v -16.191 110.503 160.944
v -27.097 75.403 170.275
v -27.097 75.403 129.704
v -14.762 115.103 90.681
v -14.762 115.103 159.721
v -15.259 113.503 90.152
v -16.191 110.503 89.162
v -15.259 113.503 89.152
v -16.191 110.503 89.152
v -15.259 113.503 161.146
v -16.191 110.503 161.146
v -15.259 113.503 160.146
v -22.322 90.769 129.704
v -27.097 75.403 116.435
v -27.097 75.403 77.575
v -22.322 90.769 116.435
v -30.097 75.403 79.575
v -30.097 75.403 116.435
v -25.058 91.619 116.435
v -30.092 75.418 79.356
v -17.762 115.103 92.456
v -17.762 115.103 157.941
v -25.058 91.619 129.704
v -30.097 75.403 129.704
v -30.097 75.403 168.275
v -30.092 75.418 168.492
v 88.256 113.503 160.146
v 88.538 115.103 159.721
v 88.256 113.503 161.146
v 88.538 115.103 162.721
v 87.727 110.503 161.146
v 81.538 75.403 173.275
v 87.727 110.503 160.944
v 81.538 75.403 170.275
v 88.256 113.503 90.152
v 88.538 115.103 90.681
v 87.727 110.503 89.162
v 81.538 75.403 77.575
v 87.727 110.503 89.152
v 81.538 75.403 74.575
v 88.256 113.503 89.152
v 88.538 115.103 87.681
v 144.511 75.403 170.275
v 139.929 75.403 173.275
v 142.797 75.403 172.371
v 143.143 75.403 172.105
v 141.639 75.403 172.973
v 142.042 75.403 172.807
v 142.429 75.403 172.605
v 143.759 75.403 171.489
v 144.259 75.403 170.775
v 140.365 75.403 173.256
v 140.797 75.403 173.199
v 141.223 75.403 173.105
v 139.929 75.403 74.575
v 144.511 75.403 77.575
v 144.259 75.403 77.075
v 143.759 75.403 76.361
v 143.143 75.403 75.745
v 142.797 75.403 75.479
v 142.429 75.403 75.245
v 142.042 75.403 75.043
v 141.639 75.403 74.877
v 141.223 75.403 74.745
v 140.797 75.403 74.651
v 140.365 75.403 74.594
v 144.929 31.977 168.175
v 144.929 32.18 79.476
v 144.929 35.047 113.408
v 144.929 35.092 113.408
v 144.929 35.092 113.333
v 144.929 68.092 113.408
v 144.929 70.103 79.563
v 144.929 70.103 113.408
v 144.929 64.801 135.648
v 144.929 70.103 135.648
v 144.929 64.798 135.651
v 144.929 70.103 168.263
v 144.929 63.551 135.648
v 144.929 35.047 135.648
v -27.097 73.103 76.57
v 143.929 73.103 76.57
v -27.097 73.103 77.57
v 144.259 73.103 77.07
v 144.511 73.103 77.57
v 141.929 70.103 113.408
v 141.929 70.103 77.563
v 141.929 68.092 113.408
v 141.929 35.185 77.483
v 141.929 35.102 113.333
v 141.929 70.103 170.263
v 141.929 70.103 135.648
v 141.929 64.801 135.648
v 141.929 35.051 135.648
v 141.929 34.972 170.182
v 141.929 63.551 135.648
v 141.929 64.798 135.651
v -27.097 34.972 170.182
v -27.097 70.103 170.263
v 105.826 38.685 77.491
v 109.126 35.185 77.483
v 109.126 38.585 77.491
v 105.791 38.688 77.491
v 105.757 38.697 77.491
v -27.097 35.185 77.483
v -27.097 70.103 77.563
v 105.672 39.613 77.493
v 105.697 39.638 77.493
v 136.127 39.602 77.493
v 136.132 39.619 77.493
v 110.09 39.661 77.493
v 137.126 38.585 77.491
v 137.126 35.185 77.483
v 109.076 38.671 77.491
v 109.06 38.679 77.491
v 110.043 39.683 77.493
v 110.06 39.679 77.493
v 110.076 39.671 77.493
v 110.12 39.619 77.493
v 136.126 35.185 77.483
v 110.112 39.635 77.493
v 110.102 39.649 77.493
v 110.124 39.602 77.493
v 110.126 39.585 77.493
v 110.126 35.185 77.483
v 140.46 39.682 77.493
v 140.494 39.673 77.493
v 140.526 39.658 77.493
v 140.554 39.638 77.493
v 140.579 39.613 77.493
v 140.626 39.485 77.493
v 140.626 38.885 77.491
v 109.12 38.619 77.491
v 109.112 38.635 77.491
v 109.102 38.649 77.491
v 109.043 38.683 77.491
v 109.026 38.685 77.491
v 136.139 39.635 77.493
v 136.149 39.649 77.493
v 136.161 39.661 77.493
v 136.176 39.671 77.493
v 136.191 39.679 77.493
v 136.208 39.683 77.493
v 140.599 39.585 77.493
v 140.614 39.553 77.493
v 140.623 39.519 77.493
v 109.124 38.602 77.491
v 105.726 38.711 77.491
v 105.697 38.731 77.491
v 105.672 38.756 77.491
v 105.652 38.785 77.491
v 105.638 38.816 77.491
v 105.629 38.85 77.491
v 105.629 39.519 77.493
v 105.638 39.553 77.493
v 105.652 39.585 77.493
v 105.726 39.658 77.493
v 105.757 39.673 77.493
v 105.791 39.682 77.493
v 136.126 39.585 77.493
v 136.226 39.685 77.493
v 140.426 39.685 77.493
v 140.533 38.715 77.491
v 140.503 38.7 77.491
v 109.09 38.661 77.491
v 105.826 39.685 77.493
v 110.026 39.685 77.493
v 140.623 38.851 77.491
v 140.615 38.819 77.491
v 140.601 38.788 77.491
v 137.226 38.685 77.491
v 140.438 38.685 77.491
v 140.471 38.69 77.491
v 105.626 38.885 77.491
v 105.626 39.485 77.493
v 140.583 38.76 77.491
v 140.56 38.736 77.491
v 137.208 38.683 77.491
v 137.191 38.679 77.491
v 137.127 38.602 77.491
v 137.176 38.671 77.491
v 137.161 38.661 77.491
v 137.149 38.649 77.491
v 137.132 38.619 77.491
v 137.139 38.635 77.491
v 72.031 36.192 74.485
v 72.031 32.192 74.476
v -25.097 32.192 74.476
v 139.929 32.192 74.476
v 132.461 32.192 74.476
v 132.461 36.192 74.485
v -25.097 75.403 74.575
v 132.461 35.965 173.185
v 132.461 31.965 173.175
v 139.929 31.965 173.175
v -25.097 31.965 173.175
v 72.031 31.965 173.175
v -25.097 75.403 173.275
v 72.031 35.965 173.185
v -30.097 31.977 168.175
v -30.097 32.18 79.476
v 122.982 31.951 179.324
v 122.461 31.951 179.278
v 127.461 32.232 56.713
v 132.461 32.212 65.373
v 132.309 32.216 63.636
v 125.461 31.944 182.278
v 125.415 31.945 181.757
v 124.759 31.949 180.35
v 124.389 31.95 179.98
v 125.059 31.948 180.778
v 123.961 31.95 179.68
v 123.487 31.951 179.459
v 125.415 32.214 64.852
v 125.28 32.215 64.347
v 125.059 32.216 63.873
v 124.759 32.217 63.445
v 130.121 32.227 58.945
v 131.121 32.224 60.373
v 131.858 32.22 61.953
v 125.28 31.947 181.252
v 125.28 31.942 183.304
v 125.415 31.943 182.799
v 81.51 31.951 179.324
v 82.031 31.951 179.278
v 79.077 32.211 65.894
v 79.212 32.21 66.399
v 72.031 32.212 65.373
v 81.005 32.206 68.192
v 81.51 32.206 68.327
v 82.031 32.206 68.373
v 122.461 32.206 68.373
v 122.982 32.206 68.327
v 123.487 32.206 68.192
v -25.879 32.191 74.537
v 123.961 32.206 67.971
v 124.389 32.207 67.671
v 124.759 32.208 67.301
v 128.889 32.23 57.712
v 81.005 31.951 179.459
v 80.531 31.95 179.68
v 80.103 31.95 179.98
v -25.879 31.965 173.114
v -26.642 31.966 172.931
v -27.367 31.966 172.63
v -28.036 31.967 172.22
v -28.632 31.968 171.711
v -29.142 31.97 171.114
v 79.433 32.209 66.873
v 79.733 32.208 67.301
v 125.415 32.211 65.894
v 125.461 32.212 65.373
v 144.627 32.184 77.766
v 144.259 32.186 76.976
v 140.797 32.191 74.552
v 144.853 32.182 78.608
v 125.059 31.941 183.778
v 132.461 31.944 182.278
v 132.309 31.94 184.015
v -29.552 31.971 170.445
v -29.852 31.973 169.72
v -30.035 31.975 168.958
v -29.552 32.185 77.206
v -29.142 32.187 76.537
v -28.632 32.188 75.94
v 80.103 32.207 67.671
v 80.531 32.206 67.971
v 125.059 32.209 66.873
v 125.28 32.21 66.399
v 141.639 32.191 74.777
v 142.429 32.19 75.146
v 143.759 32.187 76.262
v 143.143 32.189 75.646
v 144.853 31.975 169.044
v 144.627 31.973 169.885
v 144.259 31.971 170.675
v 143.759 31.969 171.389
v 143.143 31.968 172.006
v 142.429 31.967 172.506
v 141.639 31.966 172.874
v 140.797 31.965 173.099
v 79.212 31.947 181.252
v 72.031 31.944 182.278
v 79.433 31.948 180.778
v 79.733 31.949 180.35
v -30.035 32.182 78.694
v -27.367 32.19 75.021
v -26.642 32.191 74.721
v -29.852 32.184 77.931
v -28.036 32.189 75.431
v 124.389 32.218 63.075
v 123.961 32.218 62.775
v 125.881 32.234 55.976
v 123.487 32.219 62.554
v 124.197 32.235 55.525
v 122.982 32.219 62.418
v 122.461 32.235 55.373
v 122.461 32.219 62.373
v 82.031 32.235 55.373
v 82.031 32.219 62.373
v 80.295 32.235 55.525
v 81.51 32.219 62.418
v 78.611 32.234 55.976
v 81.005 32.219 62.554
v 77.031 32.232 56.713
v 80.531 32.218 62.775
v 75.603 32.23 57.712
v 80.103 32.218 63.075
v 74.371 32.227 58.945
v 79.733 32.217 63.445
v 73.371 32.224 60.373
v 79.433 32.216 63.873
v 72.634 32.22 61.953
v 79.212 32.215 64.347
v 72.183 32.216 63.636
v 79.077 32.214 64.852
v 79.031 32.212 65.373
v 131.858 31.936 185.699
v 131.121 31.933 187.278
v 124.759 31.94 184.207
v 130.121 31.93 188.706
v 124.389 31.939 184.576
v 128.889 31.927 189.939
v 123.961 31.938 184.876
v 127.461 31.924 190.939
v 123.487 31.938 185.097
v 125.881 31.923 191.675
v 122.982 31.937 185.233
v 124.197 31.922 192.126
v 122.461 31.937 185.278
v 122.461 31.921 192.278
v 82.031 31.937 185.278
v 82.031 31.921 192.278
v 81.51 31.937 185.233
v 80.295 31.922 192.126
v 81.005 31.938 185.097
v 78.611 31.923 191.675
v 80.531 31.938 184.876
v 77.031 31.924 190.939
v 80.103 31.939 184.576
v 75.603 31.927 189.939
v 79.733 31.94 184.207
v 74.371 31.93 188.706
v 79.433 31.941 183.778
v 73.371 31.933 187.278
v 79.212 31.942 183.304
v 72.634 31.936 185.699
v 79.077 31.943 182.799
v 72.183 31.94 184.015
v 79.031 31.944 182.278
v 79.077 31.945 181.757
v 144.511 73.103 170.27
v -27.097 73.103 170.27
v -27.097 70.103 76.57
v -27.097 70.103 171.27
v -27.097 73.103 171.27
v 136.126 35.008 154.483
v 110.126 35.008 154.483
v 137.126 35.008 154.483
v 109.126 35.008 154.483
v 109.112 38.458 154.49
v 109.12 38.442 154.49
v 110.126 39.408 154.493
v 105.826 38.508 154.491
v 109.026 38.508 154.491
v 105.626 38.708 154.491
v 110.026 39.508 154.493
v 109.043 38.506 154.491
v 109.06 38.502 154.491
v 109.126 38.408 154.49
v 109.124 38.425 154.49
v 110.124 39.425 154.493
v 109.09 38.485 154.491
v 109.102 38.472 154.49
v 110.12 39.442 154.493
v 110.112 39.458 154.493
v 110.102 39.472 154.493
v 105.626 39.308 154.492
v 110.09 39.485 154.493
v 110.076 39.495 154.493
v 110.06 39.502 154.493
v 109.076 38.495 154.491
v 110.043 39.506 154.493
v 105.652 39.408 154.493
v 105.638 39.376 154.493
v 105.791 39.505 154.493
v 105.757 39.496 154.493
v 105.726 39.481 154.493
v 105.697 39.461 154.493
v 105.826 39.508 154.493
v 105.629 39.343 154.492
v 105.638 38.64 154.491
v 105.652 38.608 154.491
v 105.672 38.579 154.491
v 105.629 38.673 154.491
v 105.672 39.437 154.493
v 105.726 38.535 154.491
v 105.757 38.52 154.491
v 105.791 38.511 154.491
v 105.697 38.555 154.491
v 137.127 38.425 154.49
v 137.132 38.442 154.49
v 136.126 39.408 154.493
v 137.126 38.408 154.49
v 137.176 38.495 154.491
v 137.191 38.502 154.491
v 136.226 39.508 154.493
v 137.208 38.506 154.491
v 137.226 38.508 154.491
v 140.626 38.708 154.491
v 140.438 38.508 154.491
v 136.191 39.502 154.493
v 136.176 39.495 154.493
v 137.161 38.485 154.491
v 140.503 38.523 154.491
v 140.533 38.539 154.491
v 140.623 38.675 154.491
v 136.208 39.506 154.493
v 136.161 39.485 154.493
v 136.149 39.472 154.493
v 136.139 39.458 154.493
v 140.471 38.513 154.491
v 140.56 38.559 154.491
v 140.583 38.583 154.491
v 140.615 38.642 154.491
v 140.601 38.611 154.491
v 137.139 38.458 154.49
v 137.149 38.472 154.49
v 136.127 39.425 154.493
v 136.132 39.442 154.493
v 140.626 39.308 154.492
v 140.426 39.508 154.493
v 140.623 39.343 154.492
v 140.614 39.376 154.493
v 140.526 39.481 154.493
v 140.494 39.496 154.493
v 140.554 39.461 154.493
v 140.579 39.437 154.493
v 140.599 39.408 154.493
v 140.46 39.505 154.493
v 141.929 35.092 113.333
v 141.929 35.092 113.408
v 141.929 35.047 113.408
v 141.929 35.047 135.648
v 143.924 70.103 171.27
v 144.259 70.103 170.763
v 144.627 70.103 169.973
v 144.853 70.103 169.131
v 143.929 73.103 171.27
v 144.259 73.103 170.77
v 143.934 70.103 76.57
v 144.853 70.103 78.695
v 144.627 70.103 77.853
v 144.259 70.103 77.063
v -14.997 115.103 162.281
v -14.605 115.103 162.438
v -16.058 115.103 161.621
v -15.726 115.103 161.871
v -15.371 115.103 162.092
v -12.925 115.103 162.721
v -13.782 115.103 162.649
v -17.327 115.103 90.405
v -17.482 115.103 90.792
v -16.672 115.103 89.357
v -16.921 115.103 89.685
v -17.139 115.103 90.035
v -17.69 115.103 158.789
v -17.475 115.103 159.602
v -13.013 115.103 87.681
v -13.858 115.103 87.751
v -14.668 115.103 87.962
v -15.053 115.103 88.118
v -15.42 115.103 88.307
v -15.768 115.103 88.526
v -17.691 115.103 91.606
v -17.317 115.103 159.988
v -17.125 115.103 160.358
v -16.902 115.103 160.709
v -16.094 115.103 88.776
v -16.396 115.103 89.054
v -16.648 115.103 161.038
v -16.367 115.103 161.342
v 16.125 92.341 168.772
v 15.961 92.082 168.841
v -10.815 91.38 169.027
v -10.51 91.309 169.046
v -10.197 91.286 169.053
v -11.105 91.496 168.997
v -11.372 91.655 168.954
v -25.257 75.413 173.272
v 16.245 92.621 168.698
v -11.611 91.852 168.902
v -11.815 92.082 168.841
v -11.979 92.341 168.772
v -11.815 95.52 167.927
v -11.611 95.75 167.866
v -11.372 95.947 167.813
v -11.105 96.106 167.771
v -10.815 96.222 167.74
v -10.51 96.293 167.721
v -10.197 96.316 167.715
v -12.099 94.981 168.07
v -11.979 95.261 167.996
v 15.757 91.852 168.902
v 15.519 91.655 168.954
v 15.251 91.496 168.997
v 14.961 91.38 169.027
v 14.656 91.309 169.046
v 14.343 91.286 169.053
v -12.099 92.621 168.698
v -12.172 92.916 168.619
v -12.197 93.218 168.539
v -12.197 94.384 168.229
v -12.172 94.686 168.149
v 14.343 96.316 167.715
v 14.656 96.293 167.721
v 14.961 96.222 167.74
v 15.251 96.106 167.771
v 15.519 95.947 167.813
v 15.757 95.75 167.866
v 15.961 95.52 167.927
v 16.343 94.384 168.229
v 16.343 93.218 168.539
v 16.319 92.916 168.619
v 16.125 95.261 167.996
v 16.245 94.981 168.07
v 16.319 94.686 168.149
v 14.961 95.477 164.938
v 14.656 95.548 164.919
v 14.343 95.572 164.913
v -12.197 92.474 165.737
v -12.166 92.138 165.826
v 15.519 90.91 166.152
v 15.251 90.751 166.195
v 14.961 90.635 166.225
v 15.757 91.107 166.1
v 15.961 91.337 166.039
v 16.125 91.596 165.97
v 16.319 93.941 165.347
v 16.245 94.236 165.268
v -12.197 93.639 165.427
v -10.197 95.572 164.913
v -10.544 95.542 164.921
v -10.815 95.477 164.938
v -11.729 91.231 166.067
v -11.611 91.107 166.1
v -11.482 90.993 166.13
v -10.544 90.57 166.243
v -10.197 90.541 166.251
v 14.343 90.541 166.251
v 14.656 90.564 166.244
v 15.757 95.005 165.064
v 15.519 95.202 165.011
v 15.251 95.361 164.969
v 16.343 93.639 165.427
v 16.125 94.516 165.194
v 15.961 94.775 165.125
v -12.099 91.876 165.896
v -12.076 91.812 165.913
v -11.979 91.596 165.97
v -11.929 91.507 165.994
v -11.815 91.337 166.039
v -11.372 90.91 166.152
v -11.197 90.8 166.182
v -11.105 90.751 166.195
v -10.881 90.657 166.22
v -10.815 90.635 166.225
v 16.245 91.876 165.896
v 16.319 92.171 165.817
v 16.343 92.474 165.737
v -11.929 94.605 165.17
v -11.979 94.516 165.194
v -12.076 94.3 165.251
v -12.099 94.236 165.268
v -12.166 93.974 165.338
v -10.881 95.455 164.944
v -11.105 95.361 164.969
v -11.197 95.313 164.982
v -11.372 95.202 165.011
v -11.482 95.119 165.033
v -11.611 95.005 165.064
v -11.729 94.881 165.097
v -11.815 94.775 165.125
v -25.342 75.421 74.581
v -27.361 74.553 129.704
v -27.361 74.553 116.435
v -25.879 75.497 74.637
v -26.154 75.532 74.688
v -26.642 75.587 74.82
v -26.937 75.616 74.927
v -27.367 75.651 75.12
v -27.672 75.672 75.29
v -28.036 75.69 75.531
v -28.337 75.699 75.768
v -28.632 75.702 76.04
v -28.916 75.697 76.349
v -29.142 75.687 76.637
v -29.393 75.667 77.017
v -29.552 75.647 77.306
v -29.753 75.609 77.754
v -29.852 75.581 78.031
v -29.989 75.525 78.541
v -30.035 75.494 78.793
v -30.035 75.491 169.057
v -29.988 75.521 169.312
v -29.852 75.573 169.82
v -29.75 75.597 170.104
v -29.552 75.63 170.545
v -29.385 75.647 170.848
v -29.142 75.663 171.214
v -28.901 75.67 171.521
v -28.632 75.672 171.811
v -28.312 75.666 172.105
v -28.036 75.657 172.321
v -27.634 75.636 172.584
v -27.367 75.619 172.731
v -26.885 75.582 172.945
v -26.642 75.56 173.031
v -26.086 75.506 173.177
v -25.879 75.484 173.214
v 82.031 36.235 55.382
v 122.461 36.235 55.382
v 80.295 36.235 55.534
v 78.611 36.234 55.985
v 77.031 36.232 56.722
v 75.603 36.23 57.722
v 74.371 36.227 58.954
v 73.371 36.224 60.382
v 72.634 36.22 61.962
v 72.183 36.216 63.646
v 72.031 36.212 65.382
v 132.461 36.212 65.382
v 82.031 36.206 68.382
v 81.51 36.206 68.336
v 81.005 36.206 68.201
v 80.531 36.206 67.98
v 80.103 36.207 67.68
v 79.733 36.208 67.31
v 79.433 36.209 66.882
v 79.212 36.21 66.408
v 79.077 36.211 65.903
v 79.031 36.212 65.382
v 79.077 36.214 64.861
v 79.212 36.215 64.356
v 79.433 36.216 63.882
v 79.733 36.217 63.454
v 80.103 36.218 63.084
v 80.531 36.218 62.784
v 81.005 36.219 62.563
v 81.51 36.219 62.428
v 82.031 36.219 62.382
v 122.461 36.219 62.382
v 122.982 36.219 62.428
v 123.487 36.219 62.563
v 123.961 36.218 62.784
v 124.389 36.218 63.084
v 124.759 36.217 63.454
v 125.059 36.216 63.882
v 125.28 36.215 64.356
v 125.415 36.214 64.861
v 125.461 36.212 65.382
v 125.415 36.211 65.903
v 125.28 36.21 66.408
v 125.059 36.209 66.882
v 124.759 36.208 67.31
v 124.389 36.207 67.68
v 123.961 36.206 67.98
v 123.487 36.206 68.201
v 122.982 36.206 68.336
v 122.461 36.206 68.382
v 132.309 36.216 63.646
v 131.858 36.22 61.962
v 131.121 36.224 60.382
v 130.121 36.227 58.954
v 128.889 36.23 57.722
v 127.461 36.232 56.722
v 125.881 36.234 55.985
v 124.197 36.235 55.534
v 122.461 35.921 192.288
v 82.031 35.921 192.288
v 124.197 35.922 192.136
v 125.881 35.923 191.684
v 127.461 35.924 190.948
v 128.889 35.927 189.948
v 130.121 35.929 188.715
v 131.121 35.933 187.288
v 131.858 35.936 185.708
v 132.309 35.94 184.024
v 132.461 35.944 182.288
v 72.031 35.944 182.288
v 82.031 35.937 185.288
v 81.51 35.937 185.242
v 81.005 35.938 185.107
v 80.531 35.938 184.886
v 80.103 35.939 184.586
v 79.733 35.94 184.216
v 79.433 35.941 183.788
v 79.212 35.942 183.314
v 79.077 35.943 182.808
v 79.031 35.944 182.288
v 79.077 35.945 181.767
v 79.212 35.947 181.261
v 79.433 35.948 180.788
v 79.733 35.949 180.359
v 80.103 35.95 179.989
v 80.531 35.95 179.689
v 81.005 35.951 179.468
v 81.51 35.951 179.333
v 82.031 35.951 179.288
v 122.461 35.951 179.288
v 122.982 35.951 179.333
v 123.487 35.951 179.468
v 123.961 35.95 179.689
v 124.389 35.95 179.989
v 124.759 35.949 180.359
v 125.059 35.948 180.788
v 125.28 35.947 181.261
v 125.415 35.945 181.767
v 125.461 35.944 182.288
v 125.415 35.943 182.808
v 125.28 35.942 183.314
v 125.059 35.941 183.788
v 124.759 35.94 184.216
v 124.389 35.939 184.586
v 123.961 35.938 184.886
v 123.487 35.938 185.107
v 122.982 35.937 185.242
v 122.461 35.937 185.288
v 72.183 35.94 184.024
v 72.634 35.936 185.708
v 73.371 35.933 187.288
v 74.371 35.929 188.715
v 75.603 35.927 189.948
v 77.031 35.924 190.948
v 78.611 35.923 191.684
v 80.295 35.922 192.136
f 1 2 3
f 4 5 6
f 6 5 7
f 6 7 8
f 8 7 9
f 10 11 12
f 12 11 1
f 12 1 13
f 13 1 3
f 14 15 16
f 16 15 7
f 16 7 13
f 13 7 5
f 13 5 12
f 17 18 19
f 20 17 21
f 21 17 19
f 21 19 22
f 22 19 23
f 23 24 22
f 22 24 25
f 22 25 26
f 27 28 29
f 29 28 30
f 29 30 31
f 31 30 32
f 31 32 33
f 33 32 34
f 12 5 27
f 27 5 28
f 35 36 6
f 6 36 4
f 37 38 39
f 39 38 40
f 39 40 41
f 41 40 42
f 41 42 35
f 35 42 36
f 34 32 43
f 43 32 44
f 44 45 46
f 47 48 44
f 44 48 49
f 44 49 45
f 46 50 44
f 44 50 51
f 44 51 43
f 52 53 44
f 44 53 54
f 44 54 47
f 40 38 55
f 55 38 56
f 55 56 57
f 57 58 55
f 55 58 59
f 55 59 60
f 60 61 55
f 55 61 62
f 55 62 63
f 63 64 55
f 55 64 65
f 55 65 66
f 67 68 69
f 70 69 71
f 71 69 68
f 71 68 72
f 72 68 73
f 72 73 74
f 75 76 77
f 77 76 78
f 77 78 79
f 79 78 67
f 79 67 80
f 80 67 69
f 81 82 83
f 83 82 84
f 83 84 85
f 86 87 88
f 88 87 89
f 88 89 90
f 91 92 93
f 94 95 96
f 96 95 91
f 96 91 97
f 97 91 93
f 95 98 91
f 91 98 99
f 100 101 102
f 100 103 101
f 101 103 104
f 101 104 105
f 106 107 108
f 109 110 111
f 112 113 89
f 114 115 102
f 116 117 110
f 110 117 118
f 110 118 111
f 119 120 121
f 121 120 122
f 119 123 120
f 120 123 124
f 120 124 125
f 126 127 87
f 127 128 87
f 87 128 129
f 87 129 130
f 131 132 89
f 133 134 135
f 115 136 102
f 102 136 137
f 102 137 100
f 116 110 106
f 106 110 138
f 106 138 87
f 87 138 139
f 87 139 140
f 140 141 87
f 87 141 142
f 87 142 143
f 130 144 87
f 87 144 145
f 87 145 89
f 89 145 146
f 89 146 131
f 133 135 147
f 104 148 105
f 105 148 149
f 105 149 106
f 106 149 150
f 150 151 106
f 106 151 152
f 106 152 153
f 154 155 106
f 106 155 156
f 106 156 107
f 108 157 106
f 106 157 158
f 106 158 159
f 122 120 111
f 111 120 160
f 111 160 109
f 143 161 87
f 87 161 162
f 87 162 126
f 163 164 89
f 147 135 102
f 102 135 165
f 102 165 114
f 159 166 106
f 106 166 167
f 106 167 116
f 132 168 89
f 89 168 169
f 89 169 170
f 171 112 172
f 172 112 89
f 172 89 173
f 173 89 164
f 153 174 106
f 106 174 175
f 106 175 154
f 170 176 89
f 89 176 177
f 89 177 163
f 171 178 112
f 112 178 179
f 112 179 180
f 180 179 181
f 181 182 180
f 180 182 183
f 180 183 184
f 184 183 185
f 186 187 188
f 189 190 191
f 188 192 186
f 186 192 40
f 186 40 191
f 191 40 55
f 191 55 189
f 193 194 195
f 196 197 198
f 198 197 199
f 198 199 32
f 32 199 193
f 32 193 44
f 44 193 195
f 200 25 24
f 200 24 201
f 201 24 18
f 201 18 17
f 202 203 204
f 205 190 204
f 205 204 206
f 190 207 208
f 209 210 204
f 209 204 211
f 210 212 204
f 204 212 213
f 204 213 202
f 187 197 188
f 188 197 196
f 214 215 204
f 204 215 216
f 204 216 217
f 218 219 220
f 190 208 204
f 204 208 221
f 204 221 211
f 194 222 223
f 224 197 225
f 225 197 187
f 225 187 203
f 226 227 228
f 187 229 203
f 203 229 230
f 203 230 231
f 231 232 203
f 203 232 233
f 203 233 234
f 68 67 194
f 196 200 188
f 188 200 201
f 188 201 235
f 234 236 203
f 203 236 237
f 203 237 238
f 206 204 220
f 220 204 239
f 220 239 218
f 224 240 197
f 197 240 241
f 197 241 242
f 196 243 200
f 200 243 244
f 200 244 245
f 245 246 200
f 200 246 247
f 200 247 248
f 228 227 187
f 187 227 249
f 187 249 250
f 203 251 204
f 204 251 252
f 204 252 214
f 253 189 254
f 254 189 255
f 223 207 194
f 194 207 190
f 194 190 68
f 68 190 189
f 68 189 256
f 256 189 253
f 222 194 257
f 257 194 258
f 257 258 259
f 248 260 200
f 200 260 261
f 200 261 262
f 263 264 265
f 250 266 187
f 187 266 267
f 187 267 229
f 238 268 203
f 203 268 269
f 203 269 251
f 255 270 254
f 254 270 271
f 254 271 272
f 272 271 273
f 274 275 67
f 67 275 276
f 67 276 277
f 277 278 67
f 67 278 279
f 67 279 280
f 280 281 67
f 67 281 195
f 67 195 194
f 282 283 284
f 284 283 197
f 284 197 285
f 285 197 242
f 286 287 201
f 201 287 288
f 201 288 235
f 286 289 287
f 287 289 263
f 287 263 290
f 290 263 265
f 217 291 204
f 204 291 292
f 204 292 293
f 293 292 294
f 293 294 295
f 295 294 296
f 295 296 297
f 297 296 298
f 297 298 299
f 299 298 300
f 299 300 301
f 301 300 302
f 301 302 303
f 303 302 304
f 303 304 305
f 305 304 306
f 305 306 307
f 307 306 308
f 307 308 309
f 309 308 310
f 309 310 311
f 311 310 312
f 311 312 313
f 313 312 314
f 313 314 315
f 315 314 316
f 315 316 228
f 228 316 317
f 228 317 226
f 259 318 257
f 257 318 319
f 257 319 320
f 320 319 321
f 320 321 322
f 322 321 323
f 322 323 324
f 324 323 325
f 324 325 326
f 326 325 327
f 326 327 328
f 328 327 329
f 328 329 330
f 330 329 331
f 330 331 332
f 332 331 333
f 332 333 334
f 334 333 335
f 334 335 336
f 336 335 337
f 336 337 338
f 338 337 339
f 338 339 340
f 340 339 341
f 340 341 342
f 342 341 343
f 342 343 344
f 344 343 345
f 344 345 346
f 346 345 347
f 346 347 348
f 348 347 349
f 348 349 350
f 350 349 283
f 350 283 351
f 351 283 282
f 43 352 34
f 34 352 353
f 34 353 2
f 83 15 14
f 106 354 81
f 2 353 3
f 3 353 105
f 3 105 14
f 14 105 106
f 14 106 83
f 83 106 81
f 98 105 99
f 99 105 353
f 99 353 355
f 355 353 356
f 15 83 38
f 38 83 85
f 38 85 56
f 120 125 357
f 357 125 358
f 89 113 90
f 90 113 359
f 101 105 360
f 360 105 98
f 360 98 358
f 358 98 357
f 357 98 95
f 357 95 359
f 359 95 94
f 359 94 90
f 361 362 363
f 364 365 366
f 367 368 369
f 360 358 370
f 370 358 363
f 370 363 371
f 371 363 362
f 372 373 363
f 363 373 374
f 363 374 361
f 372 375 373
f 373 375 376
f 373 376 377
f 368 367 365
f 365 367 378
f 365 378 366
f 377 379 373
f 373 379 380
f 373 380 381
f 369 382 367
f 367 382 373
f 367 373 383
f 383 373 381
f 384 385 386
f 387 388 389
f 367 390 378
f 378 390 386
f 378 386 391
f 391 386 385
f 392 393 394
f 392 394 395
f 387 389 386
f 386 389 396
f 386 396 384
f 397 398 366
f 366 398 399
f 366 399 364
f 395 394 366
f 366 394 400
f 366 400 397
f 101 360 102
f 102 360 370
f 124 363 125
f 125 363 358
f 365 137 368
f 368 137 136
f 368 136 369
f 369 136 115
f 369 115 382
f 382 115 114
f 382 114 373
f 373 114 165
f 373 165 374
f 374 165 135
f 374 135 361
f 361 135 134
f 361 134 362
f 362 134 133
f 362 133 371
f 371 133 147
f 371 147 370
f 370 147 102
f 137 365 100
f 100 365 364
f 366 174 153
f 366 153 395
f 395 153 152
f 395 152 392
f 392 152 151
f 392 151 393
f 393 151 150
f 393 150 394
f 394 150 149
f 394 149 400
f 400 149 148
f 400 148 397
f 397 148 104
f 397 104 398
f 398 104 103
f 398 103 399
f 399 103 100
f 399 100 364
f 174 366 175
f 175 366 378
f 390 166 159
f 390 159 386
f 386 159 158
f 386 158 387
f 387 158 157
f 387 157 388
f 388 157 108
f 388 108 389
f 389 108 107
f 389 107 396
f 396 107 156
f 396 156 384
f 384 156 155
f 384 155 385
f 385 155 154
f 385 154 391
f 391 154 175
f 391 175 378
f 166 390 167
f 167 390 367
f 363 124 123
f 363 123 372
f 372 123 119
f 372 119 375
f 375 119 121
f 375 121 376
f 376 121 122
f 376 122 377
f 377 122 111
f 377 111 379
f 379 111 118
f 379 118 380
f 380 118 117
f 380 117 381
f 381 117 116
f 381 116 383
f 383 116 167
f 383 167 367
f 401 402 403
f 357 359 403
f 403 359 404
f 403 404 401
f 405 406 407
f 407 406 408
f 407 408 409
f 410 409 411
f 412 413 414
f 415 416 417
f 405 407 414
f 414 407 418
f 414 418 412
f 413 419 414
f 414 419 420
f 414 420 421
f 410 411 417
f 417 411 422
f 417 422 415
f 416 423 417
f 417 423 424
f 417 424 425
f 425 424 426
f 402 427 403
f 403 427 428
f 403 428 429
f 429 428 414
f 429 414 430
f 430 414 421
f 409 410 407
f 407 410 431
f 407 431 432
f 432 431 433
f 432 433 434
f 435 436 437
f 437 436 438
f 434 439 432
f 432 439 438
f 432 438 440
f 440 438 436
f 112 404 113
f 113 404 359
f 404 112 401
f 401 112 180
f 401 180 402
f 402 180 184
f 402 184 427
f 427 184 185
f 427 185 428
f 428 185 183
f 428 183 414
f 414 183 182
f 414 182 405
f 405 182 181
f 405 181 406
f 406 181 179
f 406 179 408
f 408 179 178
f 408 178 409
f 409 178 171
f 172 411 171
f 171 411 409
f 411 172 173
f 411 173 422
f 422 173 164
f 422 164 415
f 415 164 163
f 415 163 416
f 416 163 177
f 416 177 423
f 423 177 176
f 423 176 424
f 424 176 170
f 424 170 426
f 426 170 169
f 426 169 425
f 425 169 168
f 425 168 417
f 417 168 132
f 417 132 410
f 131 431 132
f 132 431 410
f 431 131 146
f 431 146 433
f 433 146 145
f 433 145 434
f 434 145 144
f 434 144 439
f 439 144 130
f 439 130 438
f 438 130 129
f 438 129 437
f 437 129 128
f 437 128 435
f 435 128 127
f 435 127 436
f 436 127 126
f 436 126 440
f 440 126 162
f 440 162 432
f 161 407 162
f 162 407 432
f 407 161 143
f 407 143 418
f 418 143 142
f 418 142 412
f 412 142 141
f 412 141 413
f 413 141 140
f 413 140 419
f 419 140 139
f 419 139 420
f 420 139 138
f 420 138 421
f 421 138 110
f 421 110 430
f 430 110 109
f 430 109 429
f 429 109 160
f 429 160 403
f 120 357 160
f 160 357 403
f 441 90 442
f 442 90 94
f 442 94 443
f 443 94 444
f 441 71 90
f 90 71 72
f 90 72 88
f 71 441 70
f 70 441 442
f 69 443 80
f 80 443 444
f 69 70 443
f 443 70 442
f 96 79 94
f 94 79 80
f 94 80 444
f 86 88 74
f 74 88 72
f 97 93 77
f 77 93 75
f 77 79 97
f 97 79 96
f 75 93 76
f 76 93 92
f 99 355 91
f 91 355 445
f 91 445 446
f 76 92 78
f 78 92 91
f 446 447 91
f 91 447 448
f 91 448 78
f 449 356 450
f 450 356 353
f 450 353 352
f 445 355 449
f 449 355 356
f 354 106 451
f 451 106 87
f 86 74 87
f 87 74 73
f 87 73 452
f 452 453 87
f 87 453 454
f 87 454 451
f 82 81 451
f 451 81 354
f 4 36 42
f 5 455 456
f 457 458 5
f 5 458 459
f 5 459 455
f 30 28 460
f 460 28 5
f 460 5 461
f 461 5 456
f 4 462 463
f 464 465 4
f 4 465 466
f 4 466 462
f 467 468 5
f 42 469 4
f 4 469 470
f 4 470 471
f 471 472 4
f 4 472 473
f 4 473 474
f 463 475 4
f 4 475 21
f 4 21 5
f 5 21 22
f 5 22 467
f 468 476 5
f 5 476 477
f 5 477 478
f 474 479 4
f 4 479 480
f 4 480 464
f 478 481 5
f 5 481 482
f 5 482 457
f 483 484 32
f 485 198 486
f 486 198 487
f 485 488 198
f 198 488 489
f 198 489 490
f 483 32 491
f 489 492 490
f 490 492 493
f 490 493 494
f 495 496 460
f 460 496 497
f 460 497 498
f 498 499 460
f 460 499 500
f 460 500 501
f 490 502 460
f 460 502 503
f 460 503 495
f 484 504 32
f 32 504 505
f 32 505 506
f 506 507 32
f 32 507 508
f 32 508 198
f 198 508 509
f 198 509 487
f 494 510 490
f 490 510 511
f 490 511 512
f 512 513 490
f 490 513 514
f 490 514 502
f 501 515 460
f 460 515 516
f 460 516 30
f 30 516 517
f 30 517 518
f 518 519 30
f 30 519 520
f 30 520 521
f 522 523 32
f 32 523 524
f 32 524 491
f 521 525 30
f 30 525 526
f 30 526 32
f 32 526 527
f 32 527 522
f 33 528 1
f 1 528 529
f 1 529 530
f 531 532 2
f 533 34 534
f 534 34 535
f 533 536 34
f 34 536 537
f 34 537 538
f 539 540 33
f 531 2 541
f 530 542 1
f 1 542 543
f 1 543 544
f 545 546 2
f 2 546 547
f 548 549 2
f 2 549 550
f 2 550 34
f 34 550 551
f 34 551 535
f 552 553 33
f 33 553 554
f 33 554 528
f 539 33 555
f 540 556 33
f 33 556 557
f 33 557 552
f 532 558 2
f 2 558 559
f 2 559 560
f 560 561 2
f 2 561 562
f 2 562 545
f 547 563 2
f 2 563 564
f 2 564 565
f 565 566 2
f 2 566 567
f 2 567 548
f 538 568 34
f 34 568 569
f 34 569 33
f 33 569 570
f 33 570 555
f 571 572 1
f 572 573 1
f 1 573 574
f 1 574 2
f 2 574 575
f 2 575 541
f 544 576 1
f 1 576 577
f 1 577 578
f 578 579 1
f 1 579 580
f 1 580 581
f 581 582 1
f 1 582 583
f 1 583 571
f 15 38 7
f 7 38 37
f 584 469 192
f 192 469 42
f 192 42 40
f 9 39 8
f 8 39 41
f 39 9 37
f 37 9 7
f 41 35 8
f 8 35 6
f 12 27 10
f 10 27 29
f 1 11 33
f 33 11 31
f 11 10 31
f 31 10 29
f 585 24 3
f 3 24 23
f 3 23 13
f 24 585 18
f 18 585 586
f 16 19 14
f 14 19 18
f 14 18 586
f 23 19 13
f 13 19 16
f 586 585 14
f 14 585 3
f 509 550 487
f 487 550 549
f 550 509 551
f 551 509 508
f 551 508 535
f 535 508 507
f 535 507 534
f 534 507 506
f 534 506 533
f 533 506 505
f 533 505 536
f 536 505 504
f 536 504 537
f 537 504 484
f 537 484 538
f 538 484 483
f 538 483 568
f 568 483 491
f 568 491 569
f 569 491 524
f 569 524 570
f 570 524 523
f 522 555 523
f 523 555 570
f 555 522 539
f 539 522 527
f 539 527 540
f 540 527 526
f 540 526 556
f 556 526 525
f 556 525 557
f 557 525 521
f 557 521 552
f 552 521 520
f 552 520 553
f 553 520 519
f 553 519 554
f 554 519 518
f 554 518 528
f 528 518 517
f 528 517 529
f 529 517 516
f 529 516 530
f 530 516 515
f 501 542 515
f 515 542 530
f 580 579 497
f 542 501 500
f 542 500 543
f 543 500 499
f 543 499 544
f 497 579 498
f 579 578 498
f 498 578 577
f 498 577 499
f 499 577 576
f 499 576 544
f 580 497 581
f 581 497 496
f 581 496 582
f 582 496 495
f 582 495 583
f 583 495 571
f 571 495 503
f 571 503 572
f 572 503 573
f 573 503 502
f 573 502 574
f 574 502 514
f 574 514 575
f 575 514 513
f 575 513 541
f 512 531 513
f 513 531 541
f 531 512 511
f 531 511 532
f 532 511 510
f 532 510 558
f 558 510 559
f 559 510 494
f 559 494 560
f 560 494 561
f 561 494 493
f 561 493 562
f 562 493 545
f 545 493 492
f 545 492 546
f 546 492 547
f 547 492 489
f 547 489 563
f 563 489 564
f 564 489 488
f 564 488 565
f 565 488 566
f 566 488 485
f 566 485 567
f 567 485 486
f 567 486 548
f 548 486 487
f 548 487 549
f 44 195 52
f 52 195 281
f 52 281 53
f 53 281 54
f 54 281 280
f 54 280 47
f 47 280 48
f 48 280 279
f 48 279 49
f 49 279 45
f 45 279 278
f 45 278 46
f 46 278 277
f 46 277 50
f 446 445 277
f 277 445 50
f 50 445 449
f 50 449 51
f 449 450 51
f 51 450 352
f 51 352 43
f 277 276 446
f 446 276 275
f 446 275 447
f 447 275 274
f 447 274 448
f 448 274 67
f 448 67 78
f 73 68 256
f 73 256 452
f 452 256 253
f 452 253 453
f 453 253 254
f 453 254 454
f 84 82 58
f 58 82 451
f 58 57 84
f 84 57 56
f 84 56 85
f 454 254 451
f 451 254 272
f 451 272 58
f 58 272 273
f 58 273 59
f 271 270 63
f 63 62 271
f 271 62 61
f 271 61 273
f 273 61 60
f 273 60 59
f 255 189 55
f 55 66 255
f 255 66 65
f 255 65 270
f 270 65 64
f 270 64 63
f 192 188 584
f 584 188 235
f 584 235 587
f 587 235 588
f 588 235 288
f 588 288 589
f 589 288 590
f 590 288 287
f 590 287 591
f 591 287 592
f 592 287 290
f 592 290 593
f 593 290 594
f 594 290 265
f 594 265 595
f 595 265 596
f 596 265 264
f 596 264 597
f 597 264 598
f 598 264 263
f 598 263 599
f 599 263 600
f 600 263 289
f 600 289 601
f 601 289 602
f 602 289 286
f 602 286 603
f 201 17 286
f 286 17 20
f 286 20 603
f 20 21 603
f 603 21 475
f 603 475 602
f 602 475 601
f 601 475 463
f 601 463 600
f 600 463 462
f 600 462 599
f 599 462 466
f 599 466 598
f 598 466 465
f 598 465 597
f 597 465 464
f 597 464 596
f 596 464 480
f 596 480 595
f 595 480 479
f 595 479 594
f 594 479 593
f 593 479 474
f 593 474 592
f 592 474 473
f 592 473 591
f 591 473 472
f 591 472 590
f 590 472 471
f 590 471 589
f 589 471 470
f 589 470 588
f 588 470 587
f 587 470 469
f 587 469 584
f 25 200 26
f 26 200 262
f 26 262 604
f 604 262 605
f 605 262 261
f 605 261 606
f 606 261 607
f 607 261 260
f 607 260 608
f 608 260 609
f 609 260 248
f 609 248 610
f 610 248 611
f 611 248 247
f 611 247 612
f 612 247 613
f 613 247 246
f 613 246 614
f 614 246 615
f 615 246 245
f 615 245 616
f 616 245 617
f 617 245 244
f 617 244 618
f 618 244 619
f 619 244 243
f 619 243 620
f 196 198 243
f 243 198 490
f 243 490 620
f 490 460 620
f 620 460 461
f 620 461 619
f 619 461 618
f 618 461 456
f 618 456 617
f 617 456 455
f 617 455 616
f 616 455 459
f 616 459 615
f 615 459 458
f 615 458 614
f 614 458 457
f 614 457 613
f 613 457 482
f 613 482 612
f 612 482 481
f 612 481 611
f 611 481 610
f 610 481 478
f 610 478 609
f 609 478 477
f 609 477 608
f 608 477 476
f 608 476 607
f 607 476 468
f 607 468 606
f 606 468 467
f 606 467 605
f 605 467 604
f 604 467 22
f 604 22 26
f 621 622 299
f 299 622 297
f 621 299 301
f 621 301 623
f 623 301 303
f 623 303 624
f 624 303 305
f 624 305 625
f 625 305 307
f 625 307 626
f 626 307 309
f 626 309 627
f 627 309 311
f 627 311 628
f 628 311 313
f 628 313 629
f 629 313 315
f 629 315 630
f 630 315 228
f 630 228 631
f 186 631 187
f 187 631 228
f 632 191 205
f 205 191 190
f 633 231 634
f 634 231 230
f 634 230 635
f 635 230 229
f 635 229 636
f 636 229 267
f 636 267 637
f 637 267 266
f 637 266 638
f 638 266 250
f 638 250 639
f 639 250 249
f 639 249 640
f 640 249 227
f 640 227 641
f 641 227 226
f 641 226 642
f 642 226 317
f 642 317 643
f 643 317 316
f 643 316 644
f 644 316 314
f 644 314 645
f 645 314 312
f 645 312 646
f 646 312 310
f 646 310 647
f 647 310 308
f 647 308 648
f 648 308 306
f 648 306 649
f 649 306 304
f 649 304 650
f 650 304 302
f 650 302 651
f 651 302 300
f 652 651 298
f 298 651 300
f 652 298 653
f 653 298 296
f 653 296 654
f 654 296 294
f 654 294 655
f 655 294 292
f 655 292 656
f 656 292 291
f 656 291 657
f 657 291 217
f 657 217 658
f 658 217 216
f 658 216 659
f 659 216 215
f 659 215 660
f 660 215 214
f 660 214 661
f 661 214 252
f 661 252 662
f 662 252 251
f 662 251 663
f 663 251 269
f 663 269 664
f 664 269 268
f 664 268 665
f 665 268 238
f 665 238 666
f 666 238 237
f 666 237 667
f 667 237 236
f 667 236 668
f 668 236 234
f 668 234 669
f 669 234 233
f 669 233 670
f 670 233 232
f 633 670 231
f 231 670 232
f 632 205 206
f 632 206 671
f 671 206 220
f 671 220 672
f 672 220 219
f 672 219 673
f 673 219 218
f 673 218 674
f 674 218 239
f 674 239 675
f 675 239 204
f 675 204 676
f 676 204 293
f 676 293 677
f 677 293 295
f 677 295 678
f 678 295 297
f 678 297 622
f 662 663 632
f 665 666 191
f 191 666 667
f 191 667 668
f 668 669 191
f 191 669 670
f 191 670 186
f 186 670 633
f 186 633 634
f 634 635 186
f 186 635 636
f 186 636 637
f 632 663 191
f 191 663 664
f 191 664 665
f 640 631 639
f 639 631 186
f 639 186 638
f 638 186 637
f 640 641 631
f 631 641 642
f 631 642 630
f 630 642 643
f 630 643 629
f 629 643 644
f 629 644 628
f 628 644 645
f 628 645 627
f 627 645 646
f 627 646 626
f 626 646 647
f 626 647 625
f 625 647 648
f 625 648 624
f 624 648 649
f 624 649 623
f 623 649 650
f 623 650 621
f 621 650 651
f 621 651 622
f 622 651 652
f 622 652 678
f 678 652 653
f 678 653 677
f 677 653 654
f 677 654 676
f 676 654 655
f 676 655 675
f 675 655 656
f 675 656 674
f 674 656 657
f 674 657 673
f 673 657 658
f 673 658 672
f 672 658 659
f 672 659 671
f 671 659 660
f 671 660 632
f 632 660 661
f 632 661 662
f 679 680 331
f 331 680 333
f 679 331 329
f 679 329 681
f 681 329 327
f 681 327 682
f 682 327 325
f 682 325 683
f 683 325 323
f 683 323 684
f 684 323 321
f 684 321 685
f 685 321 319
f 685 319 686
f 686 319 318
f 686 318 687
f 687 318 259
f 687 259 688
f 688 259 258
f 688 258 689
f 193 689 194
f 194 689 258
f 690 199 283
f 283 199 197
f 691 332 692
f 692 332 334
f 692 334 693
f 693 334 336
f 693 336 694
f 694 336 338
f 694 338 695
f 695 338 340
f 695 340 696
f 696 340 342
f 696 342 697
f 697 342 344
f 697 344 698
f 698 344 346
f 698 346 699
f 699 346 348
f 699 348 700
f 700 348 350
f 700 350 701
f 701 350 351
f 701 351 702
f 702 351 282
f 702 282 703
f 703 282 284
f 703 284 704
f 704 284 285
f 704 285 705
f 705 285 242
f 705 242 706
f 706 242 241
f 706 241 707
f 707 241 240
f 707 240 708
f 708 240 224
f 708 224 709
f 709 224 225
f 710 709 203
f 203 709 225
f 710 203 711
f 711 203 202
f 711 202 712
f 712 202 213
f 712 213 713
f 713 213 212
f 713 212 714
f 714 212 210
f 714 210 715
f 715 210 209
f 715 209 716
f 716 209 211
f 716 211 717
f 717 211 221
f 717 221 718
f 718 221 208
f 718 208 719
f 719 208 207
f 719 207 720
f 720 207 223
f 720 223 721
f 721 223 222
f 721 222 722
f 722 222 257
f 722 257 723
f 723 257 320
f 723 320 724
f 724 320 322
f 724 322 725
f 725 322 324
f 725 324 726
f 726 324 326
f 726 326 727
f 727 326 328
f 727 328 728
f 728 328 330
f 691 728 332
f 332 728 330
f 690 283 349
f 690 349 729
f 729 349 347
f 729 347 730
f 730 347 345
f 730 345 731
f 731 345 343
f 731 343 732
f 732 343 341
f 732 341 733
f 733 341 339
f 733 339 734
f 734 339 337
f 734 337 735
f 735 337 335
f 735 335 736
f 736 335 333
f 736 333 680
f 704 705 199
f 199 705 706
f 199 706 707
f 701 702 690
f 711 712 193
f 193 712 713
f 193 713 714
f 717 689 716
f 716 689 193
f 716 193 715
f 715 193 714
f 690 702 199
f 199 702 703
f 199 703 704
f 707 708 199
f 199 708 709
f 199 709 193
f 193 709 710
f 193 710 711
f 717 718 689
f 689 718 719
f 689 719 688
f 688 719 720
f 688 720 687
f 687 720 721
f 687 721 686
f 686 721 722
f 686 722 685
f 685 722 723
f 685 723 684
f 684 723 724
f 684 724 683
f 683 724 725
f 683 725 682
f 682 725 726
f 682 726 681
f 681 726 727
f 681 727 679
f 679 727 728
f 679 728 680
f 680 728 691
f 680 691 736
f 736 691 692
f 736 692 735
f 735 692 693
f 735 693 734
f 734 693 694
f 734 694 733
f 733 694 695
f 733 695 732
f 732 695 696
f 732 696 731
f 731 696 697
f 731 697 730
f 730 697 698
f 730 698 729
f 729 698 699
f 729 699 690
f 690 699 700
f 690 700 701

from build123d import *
from OCP.BRepAlgoAPI import BRepAlgoAPI_Cut
from OCP.TopTools import TopTools_ListOfShape

# Parameters (mm, degrees)
SKETCH1_W            = 175.025590169
SKETCH1_H            = 98.699761336
BOSS_EXTRUDE1_DEPTH  = 3
SKETCH2_W            = 175.025590169
SKETCH2_H            = 98.699761336
SKETCH2_W_2          = 169.025590169
SKETCH2_H_2          = 92.699761336
BOSS_EXTRUDE2_DEPTH  = 35.5
BOSS_EXTRUDE3_DEPTH  = 80
CUT_EXTRUDE1_DEPTH   = 3
BOSS_EXTRUDE18_REACH = 231.088
CUT_EXTRUDE2_DEPTH   = 172.025590169
CUT_EXTRUDE6_DEPTH   = 10
CUT_EXTRUDE9_REACH   = 273.858
SKETCH20_W           = 55.04
SKETCH20_H           = 1.6
SKETCH20_W_2         = 71.993551849
SKETCH20_H_2         = 3
SKETCH21_W           = 13.268982054
SKETCH21_H           = 16.981220693
CUT_EXTRUDE10_DEPTH  = 2.864894477
CUT_EXTRUDE11_DEPTH  = 2.899295446
FILLET1_R            = 5
BOSS_EXTRUDE21_DEPTH = 4


with BuildPart() as part:
    # Sketch1 → Boss-Extrude1 (new body)
    with BuildSketch(Plane(origin=(0, 35.362227101, 0.081123263), x_dir=(1, 0, 0), z_dir=(6.9833353168161736e-15, -0.9999973686422646, -0.002294059403524814))):
        with Locations((57.415956998, 123.751717011)):
            Rectangle(SKETCH1_W, SKETCH1_H)
    extrude(amount=BOSS_EXTRUDE1_DEPTH)

    # Sketch2 → Boss-Extrude2 (add)
    with BuildSketch(Plane(origin=(0, 35.362227101, 0.081123263), x_dir=(1, 0, 0), z_dir=(-6.991181572878775e-15, 0.9999973686422646, 0.0022940594035248327))):
        with Locations((57.415956998, -123.751717011)):
            Rectangle(SKETCH2_W, SKETCH2_H)
        with Locations((57.415956998, -123.751717011)):
            Rectangle(SKETCH2_W_2, SKETCH2_H_2, mode=Mode.SUBTRACT)
    extrude(amount=BOSS_EXTRUDE2_DEPTH)

    # Sketch4 → Boss-Extrude3 (add)
    with BuildSketch(Plane(origin=(0, -0.170682232, 74.401640566), x_dir=(-1, 0, 0), z_dir=(0, 0.0022940594035248145, -0.9999973686422646))):
        with BuildLine():
            Line((-137.125595462, 33.362320152), (-137.125595462, 38.762320152))
            ThreePointArc((-137.125595462, 38.762320152), (-137.154884784, 38.83303083), (-137.225595462, 38.862320152))
            Line((-137.225595462, 38.862320152), (-140.437886876, 38.862320152))
            ThreePointArc((-140.437886876, 38.862320152), (-140.571564636, 38.925046414), (-140.625972803, 39.062320152))
            Line((-140.625972803, 39.062320152), (-140.625595462, 39.662320152))
            ThreePointArc((-140.625595462, 39.662320152), (-140.567016818, 39.803741508), (-140.425595462, 39.862320152))
            Line((-140.425595462, 39.862320152), (-136.225595462, 39.862320152))
            ThreePointArc((-136.225595462, 39.862320152), (-136.154884784, 39.83303083), (-136.125595462, 39.762320152))
            Line((-136.125595462, 39.762320152), (-136.125595462, 33.962320152))
            ThreePointArc((-136.125595462, 33.962320152), (-136.09630614, 33.891609474), (-136.025595462, 33.862320152))
            Line((-136.025595462, 33.862320152), (-110.225595462, 33.862320152))
            ThreePointArc((-110.225595462, 33.862320152), (-110.154884784, 33.891609474), (-110.125595462, 33.962320152))
            Line((-110.125595462, 33.962320152), (-110.125595462, 39.762320152))
            ThreePointArc((-110.125595462, 39.762320152), (-110.09630614, 39.83303083), (-110.025595462, 39.862320152))
            Line((-110.025595462, 39.862320152), (-105.825595462, 39.862320152))
            ThreePointArc((-105.825595462, 39.862320152), (-105.684174106, 39.803741508), (-105.625595462, 39.662320152))
            Line((-105.625595462, 39.662320152), (-105.625595462, 39.062320152))
            ThreePointArc((-105.625595462, 39.062320152), (-105.684174106, 38.920898796), (-105.825595462, 38.862320152))
            Line((-105.825595462, 38.862320152), (-109.025595462, 38.862320152))
            ThreePointArc((-109.025595462, 38.862320152), (-109.09630614, 38.83303083), (-109.125595462, 38.762320152))
            Line((-109.125595462, 38.762320152), (-109.125595462, 33.362320152))
            Line((-109.125595462, 33.362320152), (-109.125595462, 32.362320152))
            Line((-109.125595462, 32.362320152), (-137.125595462, 32.362320152))
            Line((-137.125595462, 32.362320152), (-137.125595462, 33.362320152))
        make_face()
    extrude(amount=-BOSS_EXTRUDE3_DEPTH)

    # Sketch5 → Cut-Extrude1 (cut)
    with BuildSketch(Plane(origin=(144.928752082, 0, 0), x_dir=(0, 0, -1), z_dir=(1, 0, 0))):
        Polygon((-135.647864414, 70.612709498), (-135.647864414, 64.800669259), (-135.65072397, 64.797804586), (-135.647864414, 63.551303119), (-135.647864414, 35.046511612), (-113.408223309, 35.046511612), (-113.408223309, 35.092257349), (-113.332519351, 35.092431019), (-113.408223309, 68.092343044), (-113.408223309, 70.612709498), align=None)
    extrude(amount=-CUT_EXTRUDE1_DEPTH, mode=Mode.SUBTRACT)

    # Boss-Extrude18: up to this plane
    boss_extrude18_end = Plane(origin=(59.321367117, 75.402979661, 91.193626143), z_dir=(0, 1, 0))
    # Sketch13 → Boss-Extrude18 (add, up to the surface)
    with BuildSketch(Plane(origin=(0, 70.862133688, 0.162562372), x_dir=(1, 0, 0), z_dir=(-8.261822211046718e-15, 0.9999973686422646, 0.002294059403524814)), mode=Mode.PRIVATE) as boss_extrude18_sk1:
        Polygon((141.928752082, -113.245958928), (144.928752082, -113.245958928), (144.928752082, -74.401836343), (-30.096838087, -74.401836343), (-30.096838087, -173.101597679), (144.928752082, -173.101597679), (144.928752082, -135.485658553), (141.928752082, -135.485658553), (141.928752082, -170.101597679), (-27.096838087, -170.101597679), (-27.096838087, -77.401836343), (141.928752082, -77.401836343), align=None)
    boss_extrude18_tool1 = split(extrude(boss_extrude18_sk1.sketch, amount=BOSS_EXTRUDE18_REACH, mode=Mode.PRIVATE), bisect_by=boss_extrude18_end, keep=Keep.BOTH, mode=Mode.PRIVATE)
    add(boss_extrude18_tool1.solids().sort_by_distance((143.428752, 70.60695, 111.398861))[0])

    # Sketch14 → Cut-Extrude2 (cut)
    with BuildSketch(Plane(origin=(144.928752082, 0, 0), x_dir=(0, 0, -1), z_dir=(1, 0, 0))):
        Polygon((-135.647864414, 70.551321539), (-135.653718085, 73.102979661), (-169.269745666, 73.102979661), (-171.269745666, 73.102979661), (-171.269745666, 70.102979661), (-135.647864414, 70.102979661), align=None)
        Polygon((-76.569745666, 73.102979661), (-78.569745666, 73.102979661), (-113.413959938, 73.102979661), (-113.408223309, 70.602340731), (-113.408223309, 70.102979661), (-76.569745666, 70.102979661), align=None)
        Polygon((-113.408223309, 70.602340731), (-113.413959938, 73.102979661), (-135.653718085, 73.102979661), (-135.647864414, 70.551321539), (-135.647864414, 70.102979661), (-113.408223309, 70.102979661), align=None)
    extrude(amount=-CUT_EXTRUDE2_DEPTH, mode=Mode.SUBTRACT)

    # Sketch15 → Cut-Extrude6 (cut)
    with BuildSketch(Plane(origin=(144.928752082, 0, 0), x_dir=(0, 0, -1), z_dir=(1, 0, 0))):
        Polygon((-113.419236289, 75.402979661), (-113.413959938, 73.102979661), (-77.569743035, 73.102979661), (-77.575019386, 75.402979661), align=None)
        Polygon((-135.653718085, 73.102979661), (-170.269748298, 73.102979661), (-170.275024648, 75.402979661), (-135.653718085, 75.402979661), align=None)
    extrude(amount=-CUT_EXTRUDE6_DEPTH, mode=Mode.SUBTRACT)

    # Loft1: read off the stored shape, not the designer's step
    # Loft1: loft between two sections, ruled curve by curve
    loft1_from = [
        Edge.make_line((-30.096838087, 75.402979661, 173.275032542), (81.538428177, 75.402979661, 173.275032542)),
        Edge.make_line((81.538428177, 75.402979661, 173.275032542), (81.538428177, 75.402979661, 170.275024648)),
        Edge.make_line((81.53842818, 75.402979661, 77.575019386), (81.53842818, 75.402979661, 74.575011492)),
        Edge.make_line((81.538428177, 75.402979661, 170.275024648), (-27.096838087, 75.402979661, 170.275024648)),
        Edge.make_line((-27.096838087, 75.402979661, 170.275024648), (-27.096838087, 75.402979661, 77.575019386)),
        Edge.make_line((-27.096838087, 75.402979661, 77.575019386), (81.53842818, 75.402979661, 77.575019386)),
        Edge.make_line((81.53842818, 75.402979661, 74.575011492), (-30.096838087, 75.402979661, 74.575011492)),
        Edge.make_line((-30.096838087, 75.402979661, 74.575011492), (-30.096838087, 75.402979661, 173.275032542)),
    ]
    loft1_to = [
        Edge.make_line((-17.76157182, 115.102979661, 162.720669643), (88.538428181, 115.102979661, 162.720669643)),
        Edge.make_line((88.538428181, 115.102979661, 162.720669643), (88.538428181, 115.102979661, 159.720669643)),
        Edge.make_line((88.538428181, 115.102979661, 90.680669643), (88.538428181, 115.102979661, 87.680669643)),
        Edge.make_line((88.538428181, 115.102979661, 159.720669643), (-14.761571819, 115.102979661, 159.720669643)),
        Edge.make_line((-14.761571819, 115.102979661, 159.720669643), (-14.761571819, 115.102979661, 90.680669643)),
        Edge.make_line((-14.761571819, 115.102979661, 90.680669643), (88.538428181, 115.102979661, 90.680669643)),
        Edge.make_line((88.538428181, 115.102979661, 87.680669643), (-17.76157182, 115.102979661, 87.680669643)),
        Edge.make_line((-17.76157182, 115.102979661, 87.680669643), (-17.76157182, 115.102979661, 162.720669643)),
    ]
    loft1 = Solid(Shell([*[Face.make_surface_from_curves(loft1_from[k], loft1_to[k]) for k in range(8)], Face(Wire(loft1_from)), Face(Wire(loft1_to))]))
    add(loft1)

    # Cut-Extrude9: up to this plane
    cut_extrude9_end = Plane(origin=(-14.761571819, 115.102979661, 90.680669643), z_dir=(0.9549648258216218, -0.2967190277745592, 0))
    # Sketch20 → Cut-Extrude9 (cut, up to the surface)
    with BuildSketch(Plane(origin=(144.928752082, 0, 0), x_dir=(0, 0, -1), z_dir=(1, 0, 0)), mode=Mode.PRIVATE) as cut_extrude9_sk1:
        with Locations((-125.200669643, 114.302979661)):
            Rectangle(SKETCH20_W, SKETCH20_H)
    cut_extrude9_tool1 = split(extrude(cut_extrude9_sk1.sketch, amount=-CUT_EXTRUDE9_REACH, mode=Mode.PRIVATE), bisect_by=cut_extrude9_end, keep=Keep.BOTH, mode=Mode.PRIVATE)
    add(cut_extrude9_tool1.solids().sort_by_distance((144.928752, 114.30298, 125.20067))[0], mode=Mode.SUBTRACT)
    # Sketch20 → Cut-Extrude9 (cut, up to the surface)
    with BuildSketch(Plane(origin=(144.928752082, 0, 0), x_dir=(0, 0, -1), z_dir=(1, 0, 0)), mode=Mode.PRIVATE) as cut_extrude9_sk2:
        with Locations((-125.149258153, 112.002979661)):
            Rectangle(SKETCH20_W_2, SKETCH20_H_2)
    cut_extrude9_tool2 = split(extrude(cut_extrude9_sk2.sketch, amount=-CUT_EXTRUDE9_REACH, mode=Mode.PRIVATE), bisect_by=cut_extrude9_end, keep=Keep.BOTH, mode=Mode.PRIVATE)
    add(cut_extrude9_tool2.solids().sort_by_distance((144.928752, 112.00298, 125.149258))[0], mode=Mode.SUBTRACT)

    # Sketch21 → Cut-Extrude10 (cut)
    with BuildSketch(Plane(origin=(-48.812951207, 15.166769532, 0), x_dir=(0, 0, 1), z_dir=(-0.9549648258269783, 0.2967190277573198, -6.667019861839508e-15))):
        with Locations((123.069403721, 71.56749915)):
            Rectangle(SKETCH21_W, SKETCH21_H)
    extrude(amount=-CUT_EXTRUDE10_DEPTH, mode=Mode.SUBTRACT)


with BuildPart() as cut_extrude11_tool:
    # Sketch22 → Cut-Extrude11 (new body)
    with BuildSketch(Plane(origin=(0, 48.002301666, 180.559584161), x_dir=(1, 0, 0), z_dir=(-1.1871401813108906e-14, 0.2569284026079074, 0.9664304402973601))):
        with BuildLine():
            Line((-10.196838087, 49.992354943), (14.343161913, 49.992354943))
            ThreePointArc((14.343161913, 49.992354943), (15.757375475, 49.406568505), (16.343161913, 47.992354943))
            Line((16.343161913, 47.992354943), (16.343161913, 46.78671544))
            ThreePointArc((16.343161913, 46.78671544), (15.757375475, 45.372501878), (14.343161913, 44.78671544))
            Line((14.343161913, 44.78671544), (-10.196838087, 44.78671544))
            ThreePointArc((-10.196838087, 44.78671544), (-11.611051649, 45.372501878), (-12.196838087, 46.78671544))
            Line((-12.196838087, 46.78671544), (-12.196838087, 47.992354943))
            ThreePointArc((-12.196838087, 47.992354943), (-11.611051649, 49.406568505), (-10.196838087, 49.992354943))
        make_face()
    extrude(amount=-CUT_EXTRUDE11_DEPTH)


with BuildPart() as part_1:
    add(part.part)

    # Cut-Extrude11: cut by cut_extrude11_tool, with a tolerance
    cut_extrude11_stock = TopTools_ListOfShape()
    cut_extrude11_stock.Append(part_1.part.wrapped)
    cut_extrude11_tools = TopTools_ListOfShape()
    cut_extrude11_tools.Append(cut_extrude11_tool.part.wrapped)
    cut_extrude11_cut = BRepAlgoAPI_Cut()
    cut_extrude11_cut.SetArguments(cut_extrude11_stock)
    cut_extrude11_cut.SetTools(cut_extrude11_tools)
    cut_extrude11_cut.SetFuzzyValue(0.00001)
    cut_extrude11_cut.Build()
    add(Compound.cast(cut_extrude11_cut.Shape()).solids(), mode=Mode.REPLACE)

    # Fillet1
    # the kernel refuses this fillet: 5 mm, written as the material it takes off along each edge
    with BuildSketch(Plane(origin=(144.928752082, 87.902946769, 173.303708285), x_dir=(-2.842170943040428e-14, 0.0022940594035265596, -0.9999973686422645), z_dir=(1.3086114820877341e-15, -0.9999973686422645, -0.0022940594035265596))) as fillet1_piece_1:
        with BuildLine():
            CenterArc((FILLET1_R, -FILLET1_R), FILLET1_R, 90, 90)
            Line((0, -FILLET1_R), (0, 0))
            Line((0, 0), (FILLET1_R, 0))
        make_face()
    fillet1_piece_1_solid = extrude(amount=68.437964315, mode=Mode.PRIVATE)
    with BuildSketch(Plane(origin=(144.928752082, 19.691585655, 74.447205908), x_dir=(0, -0.002294059403524528, 0.9999973686422645), z_dir=(-7.235076541341869e-15, 0.9999973686422646, 0.002294059403524528))) as fillet1_piece_2:
        with BuildLine():
            CenterArc((FILLET1_R, -FILLET1_R), FILLET1_R, 90, 90)
            Line((0, -FILLET1_R), (0, 0))
            Line((0, 0), (FILLET1_R, 0))
        make_face()
    fillet1_piece_2_solid = extrude(amount=68.211540603, mode=Mode.PRIVATE)
    with BuildSketch(Plane(origin=(-35.574773459, 57.772712947, 68.754954851), x_dir=(0.9591228921497503, -0.2687259220295025, -0.08871108489750493), z_dir=(0.2829898898446702, 0.9107787690719829, 0.30066385890795916))) as fillet1_piece_3:
        with BuildLine():
            CenterArc((FILLET1_R * 0.9109342886, -FILLET1_R), FILLET1_R, 90, 84.662925908)
            Line((-FILLET1_R * 0.0847304313661, -FILLET1_R * 0.906985133366), (0, 0))
            Line((0, 0), (FILLET1_R * 0.9109342886, 0))
        make_face()
    fillet1_piece_3_solid = extrude(amount=74.333102768, mode=Mode.PRIVATE)
    with BuildSketch(Plane(origin=(-35.758808566, 57.180411689, 178.119556354), x_dir=(0.9577520410970738, -0.27794080400398097, 0.07389138815863325), z_dir=(0.287595249916248, 0.9256007267731117, -0.24607370201364104))) as fillet1_piece_4:
        with BuildLine():
            CenterArc((FILLET1_R * 0.926460606246, FILLET1_R), FILLET1_R, 184.372217137, 85.627782863)
            Line((-FILLET1_R * 0.0706292300039, FILLET1_R * 0.923764454174), (0, 0))
            Line((0, 0), (FILLET1_R * 0.926460606246, 0))
        make_face()
    fillet1_piece_4_solid = extrude(amount=74.159109449, mode=Mode.PRIVATE)
    with BuildSketch(Plane(origin=(-30.096838087, 96.652923745, 173.323781305), x_dir=(1, 0, 0), z_dir=(6.951998498590891e-15, -0.9999973686422645, -0.0022940594035271494))) as fillet1_piece_5:
        with BuildLine():
            CenterArc((FILLET1_R, -FILLET1_R), FILLET1_R, 90, 90)
            Line((0, -FILLET1_R), (0, 0))
            Line((0, 0), (FILLET1_R, 0))
        make_face()
    fillet1_piece_5_solid = extrude(amount=77.187964315, mode=Mode.PRIVATE)
    with BuildSketch(Plane(origin=(-30.096838087, 19.691585655, 74.447205908), x_dir=(1, 0, 0), z_dir=(-7.070642983583899e-15, 0.9999973686422646, 0.0022940594035247915))) as fillet1_piece_6:
        with BuildLine():
            CenterArc((FILLET1_R, -FILLET1_R), FILLET1_R, 90, 90)
            Line((0, -FILLET1_R), (0, 0))
            Line((0, 0), (FILLET1_R, 0))
        make_face()
    fillet1_piece_6_solid = extrude(amount=76.961540603, mode=Mode.PRIVATE)
    add([fillet1_piece_1_solid, fillet1_piece_2_solid, fillet1_piece_3_solid, fillet1_piece_4_solid, fillet1_piece_5_solid, fillet1_piece_6_solid], mode=Mode.SUBTRACT)

    # Sketch25 → Boss-Extrude21 (add)
    with BuildSketch(Plane(origin=(0, 32.362234995, 0.074241085), x_dir=(1, 0, 0), z_dir=(6.977506045685946e-15, -0.9999973686422646, -0.002294059403524763))):
        with BuildLine():
            Line((132.461015957, 65.298831473), (132.461015957, 74.401836343))
            Line((132.461015957, 74.401836343), (72.0312592, 74.401836343))
            Line((72.0312592, 74.401836343), (72.0312592, 65.298831473))
            ThreePointArc((72.0312592, 65.298831473), (74.960191388, 58.227763661), (82.0312592, 55.298831473))
            Line((82.0312592, 55.298831473), (122.461015957, 55.298831473))
            ThreePointArc((122.461015957, 55.298831473), (129.532083769, 58.227763661), (132.461015957, 65.298831473))
        make_face()
        with BuildLine():
            ThreePointArc((122.461015957, 68.298831473), (125.461015957, 65.298831473), (122.461015957, 62.298831473))
            Line((122.461015957, 62.298831473), (82.0312592, 62.298831473))
            ThreePointArc((82.0312592, 62.298831473), (79.0312592, 65.298831473), (82.0312592, 68.298831473))
            Line((82.0312592, 68.298831473), (122.461015957, 68.298831473))
        make_face(mode=Mode.SUBTRACT)
    boss_extrude21 = extrude(amount=-BOSS_EXTRUDE21_DEPTH)

    # Mirror2: Boss-Extrude21 across plane
    add(boss_extrude21.mirror(Plane(origin=(0, -0.28389379, 123.751391376), x_dir=(1, 0, 0), z_dir=(0, 0.0022940594035248145, -0.9999973686422646))))


solid = part_1.part
